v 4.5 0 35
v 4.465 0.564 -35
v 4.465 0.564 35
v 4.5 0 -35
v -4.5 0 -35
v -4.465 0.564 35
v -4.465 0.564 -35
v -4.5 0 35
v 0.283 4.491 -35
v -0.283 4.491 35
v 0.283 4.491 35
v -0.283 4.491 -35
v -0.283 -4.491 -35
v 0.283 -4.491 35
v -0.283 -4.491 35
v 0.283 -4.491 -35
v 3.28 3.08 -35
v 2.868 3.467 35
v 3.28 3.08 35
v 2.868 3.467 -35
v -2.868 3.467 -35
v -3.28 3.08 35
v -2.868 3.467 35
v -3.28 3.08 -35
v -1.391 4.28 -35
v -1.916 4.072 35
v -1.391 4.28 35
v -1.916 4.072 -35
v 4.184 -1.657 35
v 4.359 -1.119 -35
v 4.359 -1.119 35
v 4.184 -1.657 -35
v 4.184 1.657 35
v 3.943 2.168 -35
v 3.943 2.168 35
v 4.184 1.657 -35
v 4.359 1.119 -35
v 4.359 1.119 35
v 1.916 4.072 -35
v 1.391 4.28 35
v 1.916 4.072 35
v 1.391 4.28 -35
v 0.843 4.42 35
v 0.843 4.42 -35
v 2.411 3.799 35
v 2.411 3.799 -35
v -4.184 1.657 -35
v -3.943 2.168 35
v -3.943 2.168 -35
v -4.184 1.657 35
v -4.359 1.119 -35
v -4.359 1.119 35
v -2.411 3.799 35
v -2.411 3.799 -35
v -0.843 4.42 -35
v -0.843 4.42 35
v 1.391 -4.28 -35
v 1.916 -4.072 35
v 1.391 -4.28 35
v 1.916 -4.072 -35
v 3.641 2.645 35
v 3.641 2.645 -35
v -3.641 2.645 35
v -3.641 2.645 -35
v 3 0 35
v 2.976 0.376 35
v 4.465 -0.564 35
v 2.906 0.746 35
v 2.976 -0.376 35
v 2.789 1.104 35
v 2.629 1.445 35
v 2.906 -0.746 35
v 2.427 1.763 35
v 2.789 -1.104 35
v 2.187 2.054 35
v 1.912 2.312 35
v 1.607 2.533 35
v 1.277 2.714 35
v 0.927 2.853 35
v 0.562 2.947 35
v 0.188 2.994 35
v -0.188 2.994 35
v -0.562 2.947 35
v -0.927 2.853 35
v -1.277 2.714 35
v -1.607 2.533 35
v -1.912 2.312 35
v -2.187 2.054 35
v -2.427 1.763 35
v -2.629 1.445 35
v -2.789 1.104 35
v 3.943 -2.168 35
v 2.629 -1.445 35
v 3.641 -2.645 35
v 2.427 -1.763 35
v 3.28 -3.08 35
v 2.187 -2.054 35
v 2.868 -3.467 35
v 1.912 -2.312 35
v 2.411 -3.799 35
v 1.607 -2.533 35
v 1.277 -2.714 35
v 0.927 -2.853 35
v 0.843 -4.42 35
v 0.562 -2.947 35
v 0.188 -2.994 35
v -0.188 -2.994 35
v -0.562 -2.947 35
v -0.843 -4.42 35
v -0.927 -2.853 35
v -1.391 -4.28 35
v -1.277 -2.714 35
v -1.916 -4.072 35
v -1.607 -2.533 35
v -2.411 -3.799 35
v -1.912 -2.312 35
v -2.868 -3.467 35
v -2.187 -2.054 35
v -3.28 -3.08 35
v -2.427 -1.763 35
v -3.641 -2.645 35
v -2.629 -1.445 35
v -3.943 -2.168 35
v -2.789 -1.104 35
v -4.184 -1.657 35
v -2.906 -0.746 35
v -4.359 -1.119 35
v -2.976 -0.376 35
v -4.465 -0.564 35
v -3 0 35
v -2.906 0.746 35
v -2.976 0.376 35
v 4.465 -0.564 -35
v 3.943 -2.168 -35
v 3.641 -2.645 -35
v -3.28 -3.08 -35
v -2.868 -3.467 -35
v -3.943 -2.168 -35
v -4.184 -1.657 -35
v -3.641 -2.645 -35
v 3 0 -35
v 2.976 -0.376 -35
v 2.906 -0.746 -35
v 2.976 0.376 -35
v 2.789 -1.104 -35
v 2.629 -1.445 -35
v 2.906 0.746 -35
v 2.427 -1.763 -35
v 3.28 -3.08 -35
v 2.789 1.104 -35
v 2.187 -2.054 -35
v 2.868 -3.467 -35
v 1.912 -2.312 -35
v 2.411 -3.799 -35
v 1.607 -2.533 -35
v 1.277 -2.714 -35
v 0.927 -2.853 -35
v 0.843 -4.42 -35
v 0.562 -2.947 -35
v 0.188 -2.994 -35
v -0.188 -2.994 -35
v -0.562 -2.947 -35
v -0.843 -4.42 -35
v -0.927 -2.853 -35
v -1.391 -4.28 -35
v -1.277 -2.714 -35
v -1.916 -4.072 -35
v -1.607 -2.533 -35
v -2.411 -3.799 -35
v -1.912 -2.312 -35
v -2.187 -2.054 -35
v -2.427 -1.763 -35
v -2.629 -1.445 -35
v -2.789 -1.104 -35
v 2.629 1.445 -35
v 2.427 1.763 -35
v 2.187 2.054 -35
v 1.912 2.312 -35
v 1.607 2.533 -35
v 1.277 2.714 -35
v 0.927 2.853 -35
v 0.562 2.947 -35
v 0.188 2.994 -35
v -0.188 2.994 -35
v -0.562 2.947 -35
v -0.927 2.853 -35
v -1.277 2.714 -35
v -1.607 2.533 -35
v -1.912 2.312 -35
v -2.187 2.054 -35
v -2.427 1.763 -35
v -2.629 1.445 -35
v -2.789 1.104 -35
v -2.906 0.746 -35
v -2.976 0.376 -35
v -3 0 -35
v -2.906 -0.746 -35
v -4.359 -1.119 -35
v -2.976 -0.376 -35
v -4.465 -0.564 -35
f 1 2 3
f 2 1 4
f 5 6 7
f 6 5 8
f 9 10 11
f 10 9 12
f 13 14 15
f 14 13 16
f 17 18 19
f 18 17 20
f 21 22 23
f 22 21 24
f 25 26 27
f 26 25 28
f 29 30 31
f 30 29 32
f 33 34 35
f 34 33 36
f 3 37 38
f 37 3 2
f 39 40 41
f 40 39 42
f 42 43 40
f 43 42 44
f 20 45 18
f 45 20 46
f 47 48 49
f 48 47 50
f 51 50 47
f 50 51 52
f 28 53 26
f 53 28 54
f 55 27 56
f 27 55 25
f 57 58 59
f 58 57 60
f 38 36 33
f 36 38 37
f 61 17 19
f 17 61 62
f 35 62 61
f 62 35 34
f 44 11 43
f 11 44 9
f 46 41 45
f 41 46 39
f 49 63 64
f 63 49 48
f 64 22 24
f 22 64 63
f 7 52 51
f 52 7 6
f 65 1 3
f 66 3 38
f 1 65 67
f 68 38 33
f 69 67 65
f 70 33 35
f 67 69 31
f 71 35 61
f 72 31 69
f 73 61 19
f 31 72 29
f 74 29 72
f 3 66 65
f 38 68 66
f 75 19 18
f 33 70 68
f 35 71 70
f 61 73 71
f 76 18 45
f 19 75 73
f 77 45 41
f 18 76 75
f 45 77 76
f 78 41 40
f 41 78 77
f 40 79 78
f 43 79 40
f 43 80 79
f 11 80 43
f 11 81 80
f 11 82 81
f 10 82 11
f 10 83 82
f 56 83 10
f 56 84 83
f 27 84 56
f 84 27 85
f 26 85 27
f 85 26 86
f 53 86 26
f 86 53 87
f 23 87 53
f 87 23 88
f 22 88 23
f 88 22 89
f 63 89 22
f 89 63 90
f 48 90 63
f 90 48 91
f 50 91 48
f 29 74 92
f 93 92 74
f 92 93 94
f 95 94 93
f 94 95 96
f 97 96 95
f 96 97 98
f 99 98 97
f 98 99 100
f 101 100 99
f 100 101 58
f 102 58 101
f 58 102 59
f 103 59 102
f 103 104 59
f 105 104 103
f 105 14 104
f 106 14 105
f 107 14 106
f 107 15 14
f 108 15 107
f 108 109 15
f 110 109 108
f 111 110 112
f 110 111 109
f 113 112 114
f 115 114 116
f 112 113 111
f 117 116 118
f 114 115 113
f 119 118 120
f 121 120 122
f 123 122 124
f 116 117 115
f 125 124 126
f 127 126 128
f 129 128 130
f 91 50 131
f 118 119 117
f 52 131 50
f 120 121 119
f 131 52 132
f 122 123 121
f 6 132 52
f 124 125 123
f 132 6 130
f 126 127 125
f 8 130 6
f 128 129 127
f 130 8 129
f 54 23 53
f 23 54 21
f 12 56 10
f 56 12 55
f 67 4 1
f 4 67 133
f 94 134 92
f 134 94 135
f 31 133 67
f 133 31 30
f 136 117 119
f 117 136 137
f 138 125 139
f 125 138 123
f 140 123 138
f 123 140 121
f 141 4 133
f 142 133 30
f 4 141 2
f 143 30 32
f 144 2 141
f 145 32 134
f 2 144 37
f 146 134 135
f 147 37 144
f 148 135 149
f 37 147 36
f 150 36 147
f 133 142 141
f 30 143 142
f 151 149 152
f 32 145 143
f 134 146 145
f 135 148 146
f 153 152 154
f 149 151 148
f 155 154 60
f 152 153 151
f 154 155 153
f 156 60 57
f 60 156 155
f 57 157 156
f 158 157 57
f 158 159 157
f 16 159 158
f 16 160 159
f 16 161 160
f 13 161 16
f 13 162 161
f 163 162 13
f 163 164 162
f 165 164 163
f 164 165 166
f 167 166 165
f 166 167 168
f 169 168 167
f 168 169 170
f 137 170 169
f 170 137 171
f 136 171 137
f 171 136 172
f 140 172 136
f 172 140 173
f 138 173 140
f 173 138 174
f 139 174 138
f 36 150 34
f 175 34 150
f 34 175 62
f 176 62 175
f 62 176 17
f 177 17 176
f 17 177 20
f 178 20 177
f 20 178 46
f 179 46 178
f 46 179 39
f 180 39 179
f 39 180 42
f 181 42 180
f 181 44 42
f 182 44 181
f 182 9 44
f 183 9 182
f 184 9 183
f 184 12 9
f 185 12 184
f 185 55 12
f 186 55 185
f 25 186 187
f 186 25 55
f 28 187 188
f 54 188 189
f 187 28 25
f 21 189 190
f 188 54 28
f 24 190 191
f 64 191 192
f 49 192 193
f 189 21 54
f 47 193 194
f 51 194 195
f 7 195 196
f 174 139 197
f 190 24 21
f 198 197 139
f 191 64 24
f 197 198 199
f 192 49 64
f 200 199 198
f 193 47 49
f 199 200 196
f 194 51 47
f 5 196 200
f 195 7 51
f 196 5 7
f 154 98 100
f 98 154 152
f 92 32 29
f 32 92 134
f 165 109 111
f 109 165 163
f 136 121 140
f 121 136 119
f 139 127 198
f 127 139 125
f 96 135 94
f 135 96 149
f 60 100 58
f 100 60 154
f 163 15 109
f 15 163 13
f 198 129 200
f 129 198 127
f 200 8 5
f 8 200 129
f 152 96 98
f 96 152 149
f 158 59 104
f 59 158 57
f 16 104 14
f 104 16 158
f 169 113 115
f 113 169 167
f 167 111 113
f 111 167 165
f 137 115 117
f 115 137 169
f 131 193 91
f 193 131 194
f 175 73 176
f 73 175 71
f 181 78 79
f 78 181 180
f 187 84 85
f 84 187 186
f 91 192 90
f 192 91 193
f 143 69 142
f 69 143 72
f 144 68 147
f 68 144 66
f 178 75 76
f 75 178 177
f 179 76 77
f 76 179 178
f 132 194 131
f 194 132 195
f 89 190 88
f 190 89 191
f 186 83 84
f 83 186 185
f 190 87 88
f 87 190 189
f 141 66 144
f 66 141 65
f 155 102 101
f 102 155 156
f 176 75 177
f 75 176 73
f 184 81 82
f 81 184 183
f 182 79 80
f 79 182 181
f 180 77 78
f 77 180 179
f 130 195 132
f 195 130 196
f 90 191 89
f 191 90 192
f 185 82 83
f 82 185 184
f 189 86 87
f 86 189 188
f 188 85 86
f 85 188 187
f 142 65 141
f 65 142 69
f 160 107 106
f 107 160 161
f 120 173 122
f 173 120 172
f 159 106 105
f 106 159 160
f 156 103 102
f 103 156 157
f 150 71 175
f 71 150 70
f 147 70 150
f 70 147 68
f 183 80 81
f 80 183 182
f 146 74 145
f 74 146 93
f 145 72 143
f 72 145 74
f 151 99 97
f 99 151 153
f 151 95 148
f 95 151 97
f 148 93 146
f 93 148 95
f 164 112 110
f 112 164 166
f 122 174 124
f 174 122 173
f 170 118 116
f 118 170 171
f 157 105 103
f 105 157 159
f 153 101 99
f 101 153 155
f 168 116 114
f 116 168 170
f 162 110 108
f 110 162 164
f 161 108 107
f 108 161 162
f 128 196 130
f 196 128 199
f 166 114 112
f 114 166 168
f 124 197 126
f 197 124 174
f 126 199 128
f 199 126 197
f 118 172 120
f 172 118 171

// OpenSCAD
$fn = 50;


difference() {
	union() {
		translate(v = [0, 0, -35.0000000000]) {
			cylinder(h = 70, r = 4.5000000000);
		}
	}
	union() {
		translate(v = [0, 0, -100.0000000000]) {
			cylinder(h = 200, r = 3.0000000000);
		}
	}
}
